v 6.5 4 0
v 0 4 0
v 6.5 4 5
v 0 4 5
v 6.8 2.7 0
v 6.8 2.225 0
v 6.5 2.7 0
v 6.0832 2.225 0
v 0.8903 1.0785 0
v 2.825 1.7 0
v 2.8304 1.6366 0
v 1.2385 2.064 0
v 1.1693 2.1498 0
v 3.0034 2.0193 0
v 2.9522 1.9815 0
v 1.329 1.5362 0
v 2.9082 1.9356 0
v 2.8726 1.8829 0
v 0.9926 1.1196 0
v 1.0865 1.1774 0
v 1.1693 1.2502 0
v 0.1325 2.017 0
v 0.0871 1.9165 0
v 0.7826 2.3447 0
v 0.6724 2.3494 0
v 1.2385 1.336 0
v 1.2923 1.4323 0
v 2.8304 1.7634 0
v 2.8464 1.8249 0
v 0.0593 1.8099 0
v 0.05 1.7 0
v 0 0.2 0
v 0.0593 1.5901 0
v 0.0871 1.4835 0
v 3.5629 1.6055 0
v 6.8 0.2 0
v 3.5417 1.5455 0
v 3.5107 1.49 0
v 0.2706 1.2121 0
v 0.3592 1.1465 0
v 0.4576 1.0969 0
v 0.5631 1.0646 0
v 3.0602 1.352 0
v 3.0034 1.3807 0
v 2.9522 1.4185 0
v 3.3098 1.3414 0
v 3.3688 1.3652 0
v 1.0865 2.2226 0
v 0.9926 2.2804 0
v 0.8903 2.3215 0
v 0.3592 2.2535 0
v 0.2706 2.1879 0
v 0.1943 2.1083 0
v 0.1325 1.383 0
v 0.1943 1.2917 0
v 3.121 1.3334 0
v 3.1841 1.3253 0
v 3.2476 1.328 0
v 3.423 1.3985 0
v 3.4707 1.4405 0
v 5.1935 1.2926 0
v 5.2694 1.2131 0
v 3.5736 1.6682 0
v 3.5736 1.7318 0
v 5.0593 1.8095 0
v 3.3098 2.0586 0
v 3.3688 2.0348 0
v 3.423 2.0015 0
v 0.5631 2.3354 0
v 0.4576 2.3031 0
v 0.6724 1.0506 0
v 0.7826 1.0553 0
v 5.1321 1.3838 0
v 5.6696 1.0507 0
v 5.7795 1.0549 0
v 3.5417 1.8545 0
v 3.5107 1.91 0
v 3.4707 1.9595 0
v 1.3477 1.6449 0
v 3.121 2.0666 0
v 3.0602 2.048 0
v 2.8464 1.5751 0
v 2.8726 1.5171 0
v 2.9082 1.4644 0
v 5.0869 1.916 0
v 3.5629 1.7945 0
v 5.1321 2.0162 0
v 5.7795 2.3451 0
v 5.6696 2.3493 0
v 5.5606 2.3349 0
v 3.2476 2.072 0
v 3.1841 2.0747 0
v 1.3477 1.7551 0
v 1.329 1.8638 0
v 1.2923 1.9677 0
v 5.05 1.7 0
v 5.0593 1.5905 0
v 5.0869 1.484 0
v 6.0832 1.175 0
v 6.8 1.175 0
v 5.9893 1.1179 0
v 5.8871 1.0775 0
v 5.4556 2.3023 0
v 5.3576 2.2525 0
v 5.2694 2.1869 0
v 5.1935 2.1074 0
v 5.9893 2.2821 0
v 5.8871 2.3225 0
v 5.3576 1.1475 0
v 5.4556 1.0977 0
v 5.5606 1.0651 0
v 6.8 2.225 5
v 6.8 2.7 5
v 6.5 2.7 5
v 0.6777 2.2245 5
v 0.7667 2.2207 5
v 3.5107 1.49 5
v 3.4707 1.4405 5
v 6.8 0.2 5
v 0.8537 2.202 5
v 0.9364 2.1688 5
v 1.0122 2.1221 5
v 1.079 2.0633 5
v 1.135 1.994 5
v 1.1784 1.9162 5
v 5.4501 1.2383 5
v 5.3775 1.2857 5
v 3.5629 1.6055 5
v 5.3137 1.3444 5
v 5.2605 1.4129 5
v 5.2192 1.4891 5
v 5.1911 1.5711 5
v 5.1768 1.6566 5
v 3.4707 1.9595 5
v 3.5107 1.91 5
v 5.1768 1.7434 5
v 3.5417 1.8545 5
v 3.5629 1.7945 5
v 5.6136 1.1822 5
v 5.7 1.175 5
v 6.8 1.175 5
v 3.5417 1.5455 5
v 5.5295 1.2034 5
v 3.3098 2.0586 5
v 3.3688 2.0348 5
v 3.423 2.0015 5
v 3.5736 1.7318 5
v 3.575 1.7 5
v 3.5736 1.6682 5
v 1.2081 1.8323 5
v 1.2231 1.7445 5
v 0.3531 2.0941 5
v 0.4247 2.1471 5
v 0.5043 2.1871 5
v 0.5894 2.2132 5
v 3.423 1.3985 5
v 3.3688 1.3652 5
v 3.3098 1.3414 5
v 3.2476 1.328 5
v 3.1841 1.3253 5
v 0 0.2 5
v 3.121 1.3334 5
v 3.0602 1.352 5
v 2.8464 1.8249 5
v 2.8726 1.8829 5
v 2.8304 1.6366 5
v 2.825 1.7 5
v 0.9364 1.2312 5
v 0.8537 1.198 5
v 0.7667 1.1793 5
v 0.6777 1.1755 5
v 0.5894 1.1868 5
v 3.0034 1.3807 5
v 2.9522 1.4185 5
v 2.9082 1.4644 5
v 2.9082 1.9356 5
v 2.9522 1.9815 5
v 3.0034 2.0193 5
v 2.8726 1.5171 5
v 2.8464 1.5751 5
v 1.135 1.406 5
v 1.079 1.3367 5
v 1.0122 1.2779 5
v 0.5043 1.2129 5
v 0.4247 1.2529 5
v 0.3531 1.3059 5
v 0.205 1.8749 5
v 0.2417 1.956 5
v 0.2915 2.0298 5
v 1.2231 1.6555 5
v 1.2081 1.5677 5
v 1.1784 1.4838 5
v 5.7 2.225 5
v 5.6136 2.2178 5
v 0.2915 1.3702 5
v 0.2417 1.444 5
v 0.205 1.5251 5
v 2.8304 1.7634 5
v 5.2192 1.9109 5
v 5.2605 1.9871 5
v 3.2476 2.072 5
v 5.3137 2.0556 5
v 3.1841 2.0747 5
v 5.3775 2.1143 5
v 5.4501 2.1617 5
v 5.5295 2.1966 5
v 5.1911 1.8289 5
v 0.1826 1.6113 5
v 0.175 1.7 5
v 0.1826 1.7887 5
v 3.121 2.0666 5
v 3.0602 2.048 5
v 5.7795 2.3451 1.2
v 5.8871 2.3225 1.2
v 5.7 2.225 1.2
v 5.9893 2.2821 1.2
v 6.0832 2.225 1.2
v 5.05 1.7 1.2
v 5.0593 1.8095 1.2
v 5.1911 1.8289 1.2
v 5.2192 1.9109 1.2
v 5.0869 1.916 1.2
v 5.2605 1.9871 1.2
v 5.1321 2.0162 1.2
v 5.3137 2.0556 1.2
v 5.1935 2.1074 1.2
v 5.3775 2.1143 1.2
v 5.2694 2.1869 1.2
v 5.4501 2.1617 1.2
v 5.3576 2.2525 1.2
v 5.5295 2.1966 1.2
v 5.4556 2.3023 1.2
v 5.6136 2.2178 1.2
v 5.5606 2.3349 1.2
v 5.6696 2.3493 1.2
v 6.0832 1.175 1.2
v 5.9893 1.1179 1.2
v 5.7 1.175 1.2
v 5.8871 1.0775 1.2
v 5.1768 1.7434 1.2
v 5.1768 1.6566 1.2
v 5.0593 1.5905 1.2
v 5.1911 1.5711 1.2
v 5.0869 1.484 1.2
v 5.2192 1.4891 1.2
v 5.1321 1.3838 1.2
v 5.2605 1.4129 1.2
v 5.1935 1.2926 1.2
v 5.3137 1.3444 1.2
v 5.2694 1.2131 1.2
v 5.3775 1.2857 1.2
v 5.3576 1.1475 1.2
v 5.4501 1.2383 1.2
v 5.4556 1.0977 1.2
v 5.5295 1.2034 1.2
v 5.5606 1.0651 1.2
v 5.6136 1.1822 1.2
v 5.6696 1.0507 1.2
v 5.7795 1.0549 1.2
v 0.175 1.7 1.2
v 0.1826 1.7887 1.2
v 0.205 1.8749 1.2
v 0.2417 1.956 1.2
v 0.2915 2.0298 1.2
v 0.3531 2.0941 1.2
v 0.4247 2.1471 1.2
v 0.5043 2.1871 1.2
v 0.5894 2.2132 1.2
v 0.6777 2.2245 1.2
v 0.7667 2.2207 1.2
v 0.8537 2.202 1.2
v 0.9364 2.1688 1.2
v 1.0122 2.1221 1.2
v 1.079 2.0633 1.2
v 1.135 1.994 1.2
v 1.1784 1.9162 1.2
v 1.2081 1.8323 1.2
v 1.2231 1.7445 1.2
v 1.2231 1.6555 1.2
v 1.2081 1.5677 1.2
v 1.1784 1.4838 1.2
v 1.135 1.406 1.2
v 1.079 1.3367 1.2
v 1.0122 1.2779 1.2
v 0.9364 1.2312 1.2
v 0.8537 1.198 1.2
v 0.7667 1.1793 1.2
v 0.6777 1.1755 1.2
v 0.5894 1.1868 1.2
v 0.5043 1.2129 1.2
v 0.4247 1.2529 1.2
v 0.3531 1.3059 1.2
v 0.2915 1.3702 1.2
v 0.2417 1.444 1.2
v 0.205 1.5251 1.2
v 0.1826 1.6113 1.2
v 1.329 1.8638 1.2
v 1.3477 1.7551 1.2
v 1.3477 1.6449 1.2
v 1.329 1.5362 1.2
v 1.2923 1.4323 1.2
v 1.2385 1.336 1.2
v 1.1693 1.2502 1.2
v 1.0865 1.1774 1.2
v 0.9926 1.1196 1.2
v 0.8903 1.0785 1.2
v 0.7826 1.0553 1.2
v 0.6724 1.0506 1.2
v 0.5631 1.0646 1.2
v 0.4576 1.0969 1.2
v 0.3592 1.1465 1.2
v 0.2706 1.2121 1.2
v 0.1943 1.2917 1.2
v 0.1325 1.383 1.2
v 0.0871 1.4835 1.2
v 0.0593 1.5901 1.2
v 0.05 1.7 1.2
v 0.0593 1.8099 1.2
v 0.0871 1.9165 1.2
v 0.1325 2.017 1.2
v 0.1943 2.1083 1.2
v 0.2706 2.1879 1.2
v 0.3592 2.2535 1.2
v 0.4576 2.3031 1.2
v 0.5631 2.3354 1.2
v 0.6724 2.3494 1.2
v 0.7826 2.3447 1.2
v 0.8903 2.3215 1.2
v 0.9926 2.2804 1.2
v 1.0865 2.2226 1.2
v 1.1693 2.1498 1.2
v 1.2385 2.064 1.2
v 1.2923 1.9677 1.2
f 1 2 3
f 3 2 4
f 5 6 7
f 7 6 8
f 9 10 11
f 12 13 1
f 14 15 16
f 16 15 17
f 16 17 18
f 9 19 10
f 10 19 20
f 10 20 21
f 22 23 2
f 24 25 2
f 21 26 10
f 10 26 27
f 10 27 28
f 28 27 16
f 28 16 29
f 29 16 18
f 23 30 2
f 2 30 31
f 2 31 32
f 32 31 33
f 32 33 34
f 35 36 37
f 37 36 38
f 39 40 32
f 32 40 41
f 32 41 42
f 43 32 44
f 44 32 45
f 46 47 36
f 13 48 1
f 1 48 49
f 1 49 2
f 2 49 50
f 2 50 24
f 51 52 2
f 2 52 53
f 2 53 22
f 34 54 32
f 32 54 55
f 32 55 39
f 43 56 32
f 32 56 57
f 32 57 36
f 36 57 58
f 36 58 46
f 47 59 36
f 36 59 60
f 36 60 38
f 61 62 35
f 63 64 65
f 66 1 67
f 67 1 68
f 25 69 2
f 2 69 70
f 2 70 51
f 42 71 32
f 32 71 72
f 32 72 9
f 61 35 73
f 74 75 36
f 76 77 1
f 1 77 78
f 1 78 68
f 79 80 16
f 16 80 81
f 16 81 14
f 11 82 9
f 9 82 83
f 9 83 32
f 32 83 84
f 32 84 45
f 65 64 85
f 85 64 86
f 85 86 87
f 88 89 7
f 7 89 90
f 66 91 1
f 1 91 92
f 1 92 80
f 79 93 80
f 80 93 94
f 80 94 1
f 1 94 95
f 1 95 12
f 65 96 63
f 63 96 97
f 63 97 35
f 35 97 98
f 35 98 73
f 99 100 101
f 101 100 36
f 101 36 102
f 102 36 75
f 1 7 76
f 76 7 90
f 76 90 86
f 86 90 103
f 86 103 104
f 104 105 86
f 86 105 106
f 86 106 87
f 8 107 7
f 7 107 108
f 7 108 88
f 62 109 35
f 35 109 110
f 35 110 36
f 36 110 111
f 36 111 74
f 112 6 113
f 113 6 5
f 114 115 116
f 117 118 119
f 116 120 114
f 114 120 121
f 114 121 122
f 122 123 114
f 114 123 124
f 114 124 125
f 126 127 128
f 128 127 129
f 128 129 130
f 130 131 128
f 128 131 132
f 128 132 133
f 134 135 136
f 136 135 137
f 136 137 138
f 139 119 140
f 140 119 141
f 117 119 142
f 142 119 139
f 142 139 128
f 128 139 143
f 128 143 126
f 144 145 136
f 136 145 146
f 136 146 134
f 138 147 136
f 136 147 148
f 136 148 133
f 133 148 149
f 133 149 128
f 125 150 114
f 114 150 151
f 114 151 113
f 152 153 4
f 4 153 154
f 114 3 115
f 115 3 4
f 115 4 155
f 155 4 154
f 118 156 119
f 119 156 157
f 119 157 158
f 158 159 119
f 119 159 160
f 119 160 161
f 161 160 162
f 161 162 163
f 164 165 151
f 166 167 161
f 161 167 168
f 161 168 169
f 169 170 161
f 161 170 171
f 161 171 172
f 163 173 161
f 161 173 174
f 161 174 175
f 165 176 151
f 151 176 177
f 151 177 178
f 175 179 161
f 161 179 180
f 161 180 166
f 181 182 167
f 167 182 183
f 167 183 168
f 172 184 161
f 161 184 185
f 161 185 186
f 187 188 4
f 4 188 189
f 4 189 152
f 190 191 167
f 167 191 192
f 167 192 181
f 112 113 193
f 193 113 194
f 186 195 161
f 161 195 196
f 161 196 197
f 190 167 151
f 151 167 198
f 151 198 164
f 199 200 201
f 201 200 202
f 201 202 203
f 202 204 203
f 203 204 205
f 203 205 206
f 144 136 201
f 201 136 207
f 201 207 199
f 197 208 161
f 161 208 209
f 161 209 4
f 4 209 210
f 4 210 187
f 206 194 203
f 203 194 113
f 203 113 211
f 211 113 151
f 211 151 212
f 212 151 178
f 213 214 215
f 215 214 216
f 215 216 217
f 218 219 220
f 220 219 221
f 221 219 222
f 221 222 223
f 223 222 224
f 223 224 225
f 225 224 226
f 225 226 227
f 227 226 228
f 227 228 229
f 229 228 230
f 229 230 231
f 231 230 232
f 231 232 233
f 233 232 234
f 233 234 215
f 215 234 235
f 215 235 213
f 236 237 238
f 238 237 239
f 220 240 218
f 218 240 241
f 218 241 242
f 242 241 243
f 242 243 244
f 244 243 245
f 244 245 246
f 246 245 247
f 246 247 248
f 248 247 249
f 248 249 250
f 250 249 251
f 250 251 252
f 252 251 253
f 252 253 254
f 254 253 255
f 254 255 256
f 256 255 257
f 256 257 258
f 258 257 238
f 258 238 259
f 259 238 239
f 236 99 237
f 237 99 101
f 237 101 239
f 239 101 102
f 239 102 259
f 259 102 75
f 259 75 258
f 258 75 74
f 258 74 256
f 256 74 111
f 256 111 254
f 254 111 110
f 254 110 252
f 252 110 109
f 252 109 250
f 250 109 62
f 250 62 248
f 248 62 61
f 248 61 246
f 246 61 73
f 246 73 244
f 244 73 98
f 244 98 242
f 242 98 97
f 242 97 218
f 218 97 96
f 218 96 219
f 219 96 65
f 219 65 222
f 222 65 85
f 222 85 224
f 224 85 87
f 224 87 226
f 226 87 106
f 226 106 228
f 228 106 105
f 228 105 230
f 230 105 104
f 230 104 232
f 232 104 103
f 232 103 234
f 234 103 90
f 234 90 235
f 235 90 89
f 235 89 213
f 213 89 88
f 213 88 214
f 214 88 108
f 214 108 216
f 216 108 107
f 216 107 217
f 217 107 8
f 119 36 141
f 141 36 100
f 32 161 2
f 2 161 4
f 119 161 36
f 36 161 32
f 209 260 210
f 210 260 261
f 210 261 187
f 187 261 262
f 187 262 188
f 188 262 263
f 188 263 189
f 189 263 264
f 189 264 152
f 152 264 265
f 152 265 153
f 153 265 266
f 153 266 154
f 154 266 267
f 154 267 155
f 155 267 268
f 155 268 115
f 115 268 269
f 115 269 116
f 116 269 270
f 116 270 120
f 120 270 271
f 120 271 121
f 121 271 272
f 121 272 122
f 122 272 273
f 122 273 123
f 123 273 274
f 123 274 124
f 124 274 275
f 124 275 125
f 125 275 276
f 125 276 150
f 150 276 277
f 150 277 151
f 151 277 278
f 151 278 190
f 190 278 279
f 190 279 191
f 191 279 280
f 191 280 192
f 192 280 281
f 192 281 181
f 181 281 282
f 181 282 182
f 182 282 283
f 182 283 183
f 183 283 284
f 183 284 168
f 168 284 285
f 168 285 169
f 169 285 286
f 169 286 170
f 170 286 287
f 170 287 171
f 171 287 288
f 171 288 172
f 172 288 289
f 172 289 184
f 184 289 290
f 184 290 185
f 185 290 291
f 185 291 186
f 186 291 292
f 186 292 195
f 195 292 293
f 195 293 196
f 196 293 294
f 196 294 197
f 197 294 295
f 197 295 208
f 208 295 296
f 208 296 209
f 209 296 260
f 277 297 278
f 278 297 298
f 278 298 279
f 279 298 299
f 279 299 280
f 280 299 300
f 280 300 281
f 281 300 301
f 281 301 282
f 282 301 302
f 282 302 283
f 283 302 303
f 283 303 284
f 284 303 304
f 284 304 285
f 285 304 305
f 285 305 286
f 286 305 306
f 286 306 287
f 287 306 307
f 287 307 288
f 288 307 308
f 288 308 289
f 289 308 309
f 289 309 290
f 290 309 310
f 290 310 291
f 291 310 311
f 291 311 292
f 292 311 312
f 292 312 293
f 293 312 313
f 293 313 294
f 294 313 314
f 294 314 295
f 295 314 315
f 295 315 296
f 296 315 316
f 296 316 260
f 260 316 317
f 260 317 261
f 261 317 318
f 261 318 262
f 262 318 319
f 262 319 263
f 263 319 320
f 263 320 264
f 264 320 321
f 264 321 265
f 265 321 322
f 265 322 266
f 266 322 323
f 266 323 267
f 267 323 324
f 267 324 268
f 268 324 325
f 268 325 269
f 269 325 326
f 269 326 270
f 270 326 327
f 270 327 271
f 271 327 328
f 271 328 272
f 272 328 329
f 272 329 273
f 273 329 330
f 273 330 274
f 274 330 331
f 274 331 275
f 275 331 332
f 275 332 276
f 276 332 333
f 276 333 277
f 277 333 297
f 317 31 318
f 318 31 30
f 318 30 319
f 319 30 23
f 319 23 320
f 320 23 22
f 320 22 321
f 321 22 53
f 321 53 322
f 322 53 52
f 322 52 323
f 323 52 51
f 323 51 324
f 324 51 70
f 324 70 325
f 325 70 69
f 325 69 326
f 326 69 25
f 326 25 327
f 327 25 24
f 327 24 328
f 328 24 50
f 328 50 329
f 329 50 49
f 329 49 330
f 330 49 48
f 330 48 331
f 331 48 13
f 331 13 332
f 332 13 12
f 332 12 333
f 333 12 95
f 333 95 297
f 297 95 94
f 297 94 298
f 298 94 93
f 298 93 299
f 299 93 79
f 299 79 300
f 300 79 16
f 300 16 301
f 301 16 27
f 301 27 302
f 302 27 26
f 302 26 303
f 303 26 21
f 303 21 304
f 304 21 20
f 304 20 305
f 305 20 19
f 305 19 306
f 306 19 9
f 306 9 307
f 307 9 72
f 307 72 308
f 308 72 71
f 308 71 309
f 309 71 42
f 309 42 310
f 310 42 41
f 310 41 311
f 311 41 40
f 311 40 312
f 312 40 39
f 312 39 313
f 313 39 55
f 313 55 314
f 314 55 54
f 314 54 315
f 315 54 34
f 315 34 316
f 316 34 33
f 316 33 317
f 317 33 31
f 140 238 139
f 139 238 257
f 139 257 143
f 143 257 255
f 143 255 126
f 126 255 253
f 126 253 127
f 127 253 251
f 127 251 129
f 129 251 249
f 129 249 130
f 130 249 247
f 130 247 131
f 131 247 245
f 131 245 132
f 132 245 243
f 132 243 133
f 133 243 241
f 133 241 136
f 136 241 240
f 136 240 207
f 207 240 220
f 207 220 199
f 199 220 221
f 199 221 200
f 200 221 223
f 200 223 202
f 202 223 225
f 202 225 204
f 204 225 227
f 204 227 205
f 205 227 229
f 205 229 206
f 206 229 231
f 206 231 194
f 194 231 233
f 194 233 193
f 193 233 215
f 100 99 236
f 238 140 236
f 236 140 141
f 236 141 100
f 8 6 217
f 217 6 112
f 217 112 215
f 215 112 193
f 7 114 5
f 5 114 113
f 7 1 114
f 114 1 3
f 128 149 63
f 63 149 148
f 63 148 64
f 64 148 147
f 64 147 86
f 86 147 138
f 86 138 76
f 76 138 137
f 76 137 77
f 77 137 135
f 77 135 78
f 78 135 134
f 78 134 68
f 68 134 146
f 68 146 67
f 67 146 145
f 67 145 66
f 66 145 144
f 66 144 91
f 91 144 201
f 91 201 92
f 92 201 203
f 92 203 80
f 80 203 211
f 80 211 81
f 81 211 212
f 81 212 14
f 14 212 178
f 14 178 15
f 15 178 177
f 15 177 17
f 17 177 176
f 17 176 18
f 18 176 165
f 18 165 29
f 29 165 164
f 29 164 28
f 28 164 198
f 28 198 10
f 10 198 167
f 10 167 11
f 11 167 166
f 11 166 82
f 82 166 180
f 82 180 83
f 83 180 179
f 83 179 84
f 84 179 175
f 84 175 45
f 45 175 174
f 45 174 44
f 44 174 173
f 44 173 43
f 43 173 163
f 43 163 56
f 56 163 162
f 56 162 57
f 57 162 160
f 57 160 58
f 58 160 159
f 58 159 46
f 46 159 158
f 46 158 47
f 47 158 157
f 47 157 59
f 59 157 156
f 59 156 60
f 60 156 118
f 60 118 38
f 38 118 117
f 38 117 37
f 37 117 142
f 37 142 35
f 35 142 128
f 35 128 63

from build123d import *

# Parameters (mm, degrees)
SKETCH1_W                = 6.8
SKETCH1_H                = 5
BOSS_EXTRUDE1_DEPTH      = 3.8
HOLE1_D                  = 1.05
HOLE1_CBORE_D            = 1.3
HOLE1_CBORE_DEPTH        = 1.2
CUT_EXTRUDE8_DEPTH       = 10.340235543
SKETCH20_W               = 5
SKETCH20_H               = 1.3
CUT_EXTRUDE11_DEPTH      = 0.3
M1_0X0_25_TAPPED_HOLE1_D = 0.75


with BuildPart() as part:
    # Sketch1 → Boss-Extrude1 (new body)
    with BuildSketch(Plane(origin=(0, 4, 0), x_dir=(-1, 0, 0), z_dir=(0, 1, 0))):
        with Locations((-3.4, 2.5)):
            Rectangle(SKETCH1_W, SKETCH1_H)
    extrude(amount=-BOSS_EXTRUDE1_DEPTH)

    # Hole1 (through all)
    with Locations(Plane(origin=(0, 0, 0), x_dir=(-1, 0, 0), z_dir=(0, 0, -1))):
        with Locations((-5.7, 1.7), (-0.7, 1.7)):
            CounterBoreHole(HOLE1_D / 2, HOLE1_CBORE_D / 2, HOLE1_CBORE_DEPTH)

    # Sketch17 → Cut-Extrude8 (cut, through all)
    with BuildSketch(Plane.XY.offset(5)):
        with BuildLine():
            Line((6.8, 2.225), (5.7, 2.225))
            ThreePointArc((5.7, 2.225), (6.07123106, 2.07123106), (6.225, 1.7))
            ThreePointArc((6.225, 1.7), (6.07123106, 1.32876894), (5.7, 1.175))
            Line((5.7, 1.175), (6.8, 1.175))
            Line((6.8, 1.175), (6.8, 2.225))
        make_face()
        with BuildLine():
            ThreePointArc((6.225, 1.7), (6.07123106, 2.07123106), (5.7, 2.225))
            Line((5.7, 2.225), (5.7, 1.175))
            ThreePointArc((5.7, 1.175), (6.07123106, 1.32876894), (6.225, 1.7))
        make_face()
        with BuildLine():
            Line((5.7, 1.175), (5.7, 2.225))
            ThreePointArc((5.7, 2.225), (5.175, 1.7), (5.7, 1.175))
        make_face()
    extrude(amount=-CUT_EXTRUDE8_DEPTH, mode=Mode.SUBTRACT)

    # Sketch20 → Cut-Extrude11 (cut)
    with BuildSketch(Plane(origin=(6.8, 0, 0), x_dir=(0, 0, -1), z_dir=(1, 0, 0))):
        with Locations((-2.5, 3.35)):
            Rectangle(SKETCH20_W, SKETCH20_H)
    extrude(amount=-CUT_EXTRUDE11_DEPTH, mode=Mode.SUBTRACT)

    # M1.0x0.25 Tapped Hole1 (through all)
    with Locations(Plane(origin=(0, 0, 0), x_dir=(-1, 0, 0), z_dir=(0, 0, -1))):
        with Locations((-3.2, 1.7)):
            Hole(M1_0X0_25_TAPPED_HOLE1_D / 2)


solid = part.part
